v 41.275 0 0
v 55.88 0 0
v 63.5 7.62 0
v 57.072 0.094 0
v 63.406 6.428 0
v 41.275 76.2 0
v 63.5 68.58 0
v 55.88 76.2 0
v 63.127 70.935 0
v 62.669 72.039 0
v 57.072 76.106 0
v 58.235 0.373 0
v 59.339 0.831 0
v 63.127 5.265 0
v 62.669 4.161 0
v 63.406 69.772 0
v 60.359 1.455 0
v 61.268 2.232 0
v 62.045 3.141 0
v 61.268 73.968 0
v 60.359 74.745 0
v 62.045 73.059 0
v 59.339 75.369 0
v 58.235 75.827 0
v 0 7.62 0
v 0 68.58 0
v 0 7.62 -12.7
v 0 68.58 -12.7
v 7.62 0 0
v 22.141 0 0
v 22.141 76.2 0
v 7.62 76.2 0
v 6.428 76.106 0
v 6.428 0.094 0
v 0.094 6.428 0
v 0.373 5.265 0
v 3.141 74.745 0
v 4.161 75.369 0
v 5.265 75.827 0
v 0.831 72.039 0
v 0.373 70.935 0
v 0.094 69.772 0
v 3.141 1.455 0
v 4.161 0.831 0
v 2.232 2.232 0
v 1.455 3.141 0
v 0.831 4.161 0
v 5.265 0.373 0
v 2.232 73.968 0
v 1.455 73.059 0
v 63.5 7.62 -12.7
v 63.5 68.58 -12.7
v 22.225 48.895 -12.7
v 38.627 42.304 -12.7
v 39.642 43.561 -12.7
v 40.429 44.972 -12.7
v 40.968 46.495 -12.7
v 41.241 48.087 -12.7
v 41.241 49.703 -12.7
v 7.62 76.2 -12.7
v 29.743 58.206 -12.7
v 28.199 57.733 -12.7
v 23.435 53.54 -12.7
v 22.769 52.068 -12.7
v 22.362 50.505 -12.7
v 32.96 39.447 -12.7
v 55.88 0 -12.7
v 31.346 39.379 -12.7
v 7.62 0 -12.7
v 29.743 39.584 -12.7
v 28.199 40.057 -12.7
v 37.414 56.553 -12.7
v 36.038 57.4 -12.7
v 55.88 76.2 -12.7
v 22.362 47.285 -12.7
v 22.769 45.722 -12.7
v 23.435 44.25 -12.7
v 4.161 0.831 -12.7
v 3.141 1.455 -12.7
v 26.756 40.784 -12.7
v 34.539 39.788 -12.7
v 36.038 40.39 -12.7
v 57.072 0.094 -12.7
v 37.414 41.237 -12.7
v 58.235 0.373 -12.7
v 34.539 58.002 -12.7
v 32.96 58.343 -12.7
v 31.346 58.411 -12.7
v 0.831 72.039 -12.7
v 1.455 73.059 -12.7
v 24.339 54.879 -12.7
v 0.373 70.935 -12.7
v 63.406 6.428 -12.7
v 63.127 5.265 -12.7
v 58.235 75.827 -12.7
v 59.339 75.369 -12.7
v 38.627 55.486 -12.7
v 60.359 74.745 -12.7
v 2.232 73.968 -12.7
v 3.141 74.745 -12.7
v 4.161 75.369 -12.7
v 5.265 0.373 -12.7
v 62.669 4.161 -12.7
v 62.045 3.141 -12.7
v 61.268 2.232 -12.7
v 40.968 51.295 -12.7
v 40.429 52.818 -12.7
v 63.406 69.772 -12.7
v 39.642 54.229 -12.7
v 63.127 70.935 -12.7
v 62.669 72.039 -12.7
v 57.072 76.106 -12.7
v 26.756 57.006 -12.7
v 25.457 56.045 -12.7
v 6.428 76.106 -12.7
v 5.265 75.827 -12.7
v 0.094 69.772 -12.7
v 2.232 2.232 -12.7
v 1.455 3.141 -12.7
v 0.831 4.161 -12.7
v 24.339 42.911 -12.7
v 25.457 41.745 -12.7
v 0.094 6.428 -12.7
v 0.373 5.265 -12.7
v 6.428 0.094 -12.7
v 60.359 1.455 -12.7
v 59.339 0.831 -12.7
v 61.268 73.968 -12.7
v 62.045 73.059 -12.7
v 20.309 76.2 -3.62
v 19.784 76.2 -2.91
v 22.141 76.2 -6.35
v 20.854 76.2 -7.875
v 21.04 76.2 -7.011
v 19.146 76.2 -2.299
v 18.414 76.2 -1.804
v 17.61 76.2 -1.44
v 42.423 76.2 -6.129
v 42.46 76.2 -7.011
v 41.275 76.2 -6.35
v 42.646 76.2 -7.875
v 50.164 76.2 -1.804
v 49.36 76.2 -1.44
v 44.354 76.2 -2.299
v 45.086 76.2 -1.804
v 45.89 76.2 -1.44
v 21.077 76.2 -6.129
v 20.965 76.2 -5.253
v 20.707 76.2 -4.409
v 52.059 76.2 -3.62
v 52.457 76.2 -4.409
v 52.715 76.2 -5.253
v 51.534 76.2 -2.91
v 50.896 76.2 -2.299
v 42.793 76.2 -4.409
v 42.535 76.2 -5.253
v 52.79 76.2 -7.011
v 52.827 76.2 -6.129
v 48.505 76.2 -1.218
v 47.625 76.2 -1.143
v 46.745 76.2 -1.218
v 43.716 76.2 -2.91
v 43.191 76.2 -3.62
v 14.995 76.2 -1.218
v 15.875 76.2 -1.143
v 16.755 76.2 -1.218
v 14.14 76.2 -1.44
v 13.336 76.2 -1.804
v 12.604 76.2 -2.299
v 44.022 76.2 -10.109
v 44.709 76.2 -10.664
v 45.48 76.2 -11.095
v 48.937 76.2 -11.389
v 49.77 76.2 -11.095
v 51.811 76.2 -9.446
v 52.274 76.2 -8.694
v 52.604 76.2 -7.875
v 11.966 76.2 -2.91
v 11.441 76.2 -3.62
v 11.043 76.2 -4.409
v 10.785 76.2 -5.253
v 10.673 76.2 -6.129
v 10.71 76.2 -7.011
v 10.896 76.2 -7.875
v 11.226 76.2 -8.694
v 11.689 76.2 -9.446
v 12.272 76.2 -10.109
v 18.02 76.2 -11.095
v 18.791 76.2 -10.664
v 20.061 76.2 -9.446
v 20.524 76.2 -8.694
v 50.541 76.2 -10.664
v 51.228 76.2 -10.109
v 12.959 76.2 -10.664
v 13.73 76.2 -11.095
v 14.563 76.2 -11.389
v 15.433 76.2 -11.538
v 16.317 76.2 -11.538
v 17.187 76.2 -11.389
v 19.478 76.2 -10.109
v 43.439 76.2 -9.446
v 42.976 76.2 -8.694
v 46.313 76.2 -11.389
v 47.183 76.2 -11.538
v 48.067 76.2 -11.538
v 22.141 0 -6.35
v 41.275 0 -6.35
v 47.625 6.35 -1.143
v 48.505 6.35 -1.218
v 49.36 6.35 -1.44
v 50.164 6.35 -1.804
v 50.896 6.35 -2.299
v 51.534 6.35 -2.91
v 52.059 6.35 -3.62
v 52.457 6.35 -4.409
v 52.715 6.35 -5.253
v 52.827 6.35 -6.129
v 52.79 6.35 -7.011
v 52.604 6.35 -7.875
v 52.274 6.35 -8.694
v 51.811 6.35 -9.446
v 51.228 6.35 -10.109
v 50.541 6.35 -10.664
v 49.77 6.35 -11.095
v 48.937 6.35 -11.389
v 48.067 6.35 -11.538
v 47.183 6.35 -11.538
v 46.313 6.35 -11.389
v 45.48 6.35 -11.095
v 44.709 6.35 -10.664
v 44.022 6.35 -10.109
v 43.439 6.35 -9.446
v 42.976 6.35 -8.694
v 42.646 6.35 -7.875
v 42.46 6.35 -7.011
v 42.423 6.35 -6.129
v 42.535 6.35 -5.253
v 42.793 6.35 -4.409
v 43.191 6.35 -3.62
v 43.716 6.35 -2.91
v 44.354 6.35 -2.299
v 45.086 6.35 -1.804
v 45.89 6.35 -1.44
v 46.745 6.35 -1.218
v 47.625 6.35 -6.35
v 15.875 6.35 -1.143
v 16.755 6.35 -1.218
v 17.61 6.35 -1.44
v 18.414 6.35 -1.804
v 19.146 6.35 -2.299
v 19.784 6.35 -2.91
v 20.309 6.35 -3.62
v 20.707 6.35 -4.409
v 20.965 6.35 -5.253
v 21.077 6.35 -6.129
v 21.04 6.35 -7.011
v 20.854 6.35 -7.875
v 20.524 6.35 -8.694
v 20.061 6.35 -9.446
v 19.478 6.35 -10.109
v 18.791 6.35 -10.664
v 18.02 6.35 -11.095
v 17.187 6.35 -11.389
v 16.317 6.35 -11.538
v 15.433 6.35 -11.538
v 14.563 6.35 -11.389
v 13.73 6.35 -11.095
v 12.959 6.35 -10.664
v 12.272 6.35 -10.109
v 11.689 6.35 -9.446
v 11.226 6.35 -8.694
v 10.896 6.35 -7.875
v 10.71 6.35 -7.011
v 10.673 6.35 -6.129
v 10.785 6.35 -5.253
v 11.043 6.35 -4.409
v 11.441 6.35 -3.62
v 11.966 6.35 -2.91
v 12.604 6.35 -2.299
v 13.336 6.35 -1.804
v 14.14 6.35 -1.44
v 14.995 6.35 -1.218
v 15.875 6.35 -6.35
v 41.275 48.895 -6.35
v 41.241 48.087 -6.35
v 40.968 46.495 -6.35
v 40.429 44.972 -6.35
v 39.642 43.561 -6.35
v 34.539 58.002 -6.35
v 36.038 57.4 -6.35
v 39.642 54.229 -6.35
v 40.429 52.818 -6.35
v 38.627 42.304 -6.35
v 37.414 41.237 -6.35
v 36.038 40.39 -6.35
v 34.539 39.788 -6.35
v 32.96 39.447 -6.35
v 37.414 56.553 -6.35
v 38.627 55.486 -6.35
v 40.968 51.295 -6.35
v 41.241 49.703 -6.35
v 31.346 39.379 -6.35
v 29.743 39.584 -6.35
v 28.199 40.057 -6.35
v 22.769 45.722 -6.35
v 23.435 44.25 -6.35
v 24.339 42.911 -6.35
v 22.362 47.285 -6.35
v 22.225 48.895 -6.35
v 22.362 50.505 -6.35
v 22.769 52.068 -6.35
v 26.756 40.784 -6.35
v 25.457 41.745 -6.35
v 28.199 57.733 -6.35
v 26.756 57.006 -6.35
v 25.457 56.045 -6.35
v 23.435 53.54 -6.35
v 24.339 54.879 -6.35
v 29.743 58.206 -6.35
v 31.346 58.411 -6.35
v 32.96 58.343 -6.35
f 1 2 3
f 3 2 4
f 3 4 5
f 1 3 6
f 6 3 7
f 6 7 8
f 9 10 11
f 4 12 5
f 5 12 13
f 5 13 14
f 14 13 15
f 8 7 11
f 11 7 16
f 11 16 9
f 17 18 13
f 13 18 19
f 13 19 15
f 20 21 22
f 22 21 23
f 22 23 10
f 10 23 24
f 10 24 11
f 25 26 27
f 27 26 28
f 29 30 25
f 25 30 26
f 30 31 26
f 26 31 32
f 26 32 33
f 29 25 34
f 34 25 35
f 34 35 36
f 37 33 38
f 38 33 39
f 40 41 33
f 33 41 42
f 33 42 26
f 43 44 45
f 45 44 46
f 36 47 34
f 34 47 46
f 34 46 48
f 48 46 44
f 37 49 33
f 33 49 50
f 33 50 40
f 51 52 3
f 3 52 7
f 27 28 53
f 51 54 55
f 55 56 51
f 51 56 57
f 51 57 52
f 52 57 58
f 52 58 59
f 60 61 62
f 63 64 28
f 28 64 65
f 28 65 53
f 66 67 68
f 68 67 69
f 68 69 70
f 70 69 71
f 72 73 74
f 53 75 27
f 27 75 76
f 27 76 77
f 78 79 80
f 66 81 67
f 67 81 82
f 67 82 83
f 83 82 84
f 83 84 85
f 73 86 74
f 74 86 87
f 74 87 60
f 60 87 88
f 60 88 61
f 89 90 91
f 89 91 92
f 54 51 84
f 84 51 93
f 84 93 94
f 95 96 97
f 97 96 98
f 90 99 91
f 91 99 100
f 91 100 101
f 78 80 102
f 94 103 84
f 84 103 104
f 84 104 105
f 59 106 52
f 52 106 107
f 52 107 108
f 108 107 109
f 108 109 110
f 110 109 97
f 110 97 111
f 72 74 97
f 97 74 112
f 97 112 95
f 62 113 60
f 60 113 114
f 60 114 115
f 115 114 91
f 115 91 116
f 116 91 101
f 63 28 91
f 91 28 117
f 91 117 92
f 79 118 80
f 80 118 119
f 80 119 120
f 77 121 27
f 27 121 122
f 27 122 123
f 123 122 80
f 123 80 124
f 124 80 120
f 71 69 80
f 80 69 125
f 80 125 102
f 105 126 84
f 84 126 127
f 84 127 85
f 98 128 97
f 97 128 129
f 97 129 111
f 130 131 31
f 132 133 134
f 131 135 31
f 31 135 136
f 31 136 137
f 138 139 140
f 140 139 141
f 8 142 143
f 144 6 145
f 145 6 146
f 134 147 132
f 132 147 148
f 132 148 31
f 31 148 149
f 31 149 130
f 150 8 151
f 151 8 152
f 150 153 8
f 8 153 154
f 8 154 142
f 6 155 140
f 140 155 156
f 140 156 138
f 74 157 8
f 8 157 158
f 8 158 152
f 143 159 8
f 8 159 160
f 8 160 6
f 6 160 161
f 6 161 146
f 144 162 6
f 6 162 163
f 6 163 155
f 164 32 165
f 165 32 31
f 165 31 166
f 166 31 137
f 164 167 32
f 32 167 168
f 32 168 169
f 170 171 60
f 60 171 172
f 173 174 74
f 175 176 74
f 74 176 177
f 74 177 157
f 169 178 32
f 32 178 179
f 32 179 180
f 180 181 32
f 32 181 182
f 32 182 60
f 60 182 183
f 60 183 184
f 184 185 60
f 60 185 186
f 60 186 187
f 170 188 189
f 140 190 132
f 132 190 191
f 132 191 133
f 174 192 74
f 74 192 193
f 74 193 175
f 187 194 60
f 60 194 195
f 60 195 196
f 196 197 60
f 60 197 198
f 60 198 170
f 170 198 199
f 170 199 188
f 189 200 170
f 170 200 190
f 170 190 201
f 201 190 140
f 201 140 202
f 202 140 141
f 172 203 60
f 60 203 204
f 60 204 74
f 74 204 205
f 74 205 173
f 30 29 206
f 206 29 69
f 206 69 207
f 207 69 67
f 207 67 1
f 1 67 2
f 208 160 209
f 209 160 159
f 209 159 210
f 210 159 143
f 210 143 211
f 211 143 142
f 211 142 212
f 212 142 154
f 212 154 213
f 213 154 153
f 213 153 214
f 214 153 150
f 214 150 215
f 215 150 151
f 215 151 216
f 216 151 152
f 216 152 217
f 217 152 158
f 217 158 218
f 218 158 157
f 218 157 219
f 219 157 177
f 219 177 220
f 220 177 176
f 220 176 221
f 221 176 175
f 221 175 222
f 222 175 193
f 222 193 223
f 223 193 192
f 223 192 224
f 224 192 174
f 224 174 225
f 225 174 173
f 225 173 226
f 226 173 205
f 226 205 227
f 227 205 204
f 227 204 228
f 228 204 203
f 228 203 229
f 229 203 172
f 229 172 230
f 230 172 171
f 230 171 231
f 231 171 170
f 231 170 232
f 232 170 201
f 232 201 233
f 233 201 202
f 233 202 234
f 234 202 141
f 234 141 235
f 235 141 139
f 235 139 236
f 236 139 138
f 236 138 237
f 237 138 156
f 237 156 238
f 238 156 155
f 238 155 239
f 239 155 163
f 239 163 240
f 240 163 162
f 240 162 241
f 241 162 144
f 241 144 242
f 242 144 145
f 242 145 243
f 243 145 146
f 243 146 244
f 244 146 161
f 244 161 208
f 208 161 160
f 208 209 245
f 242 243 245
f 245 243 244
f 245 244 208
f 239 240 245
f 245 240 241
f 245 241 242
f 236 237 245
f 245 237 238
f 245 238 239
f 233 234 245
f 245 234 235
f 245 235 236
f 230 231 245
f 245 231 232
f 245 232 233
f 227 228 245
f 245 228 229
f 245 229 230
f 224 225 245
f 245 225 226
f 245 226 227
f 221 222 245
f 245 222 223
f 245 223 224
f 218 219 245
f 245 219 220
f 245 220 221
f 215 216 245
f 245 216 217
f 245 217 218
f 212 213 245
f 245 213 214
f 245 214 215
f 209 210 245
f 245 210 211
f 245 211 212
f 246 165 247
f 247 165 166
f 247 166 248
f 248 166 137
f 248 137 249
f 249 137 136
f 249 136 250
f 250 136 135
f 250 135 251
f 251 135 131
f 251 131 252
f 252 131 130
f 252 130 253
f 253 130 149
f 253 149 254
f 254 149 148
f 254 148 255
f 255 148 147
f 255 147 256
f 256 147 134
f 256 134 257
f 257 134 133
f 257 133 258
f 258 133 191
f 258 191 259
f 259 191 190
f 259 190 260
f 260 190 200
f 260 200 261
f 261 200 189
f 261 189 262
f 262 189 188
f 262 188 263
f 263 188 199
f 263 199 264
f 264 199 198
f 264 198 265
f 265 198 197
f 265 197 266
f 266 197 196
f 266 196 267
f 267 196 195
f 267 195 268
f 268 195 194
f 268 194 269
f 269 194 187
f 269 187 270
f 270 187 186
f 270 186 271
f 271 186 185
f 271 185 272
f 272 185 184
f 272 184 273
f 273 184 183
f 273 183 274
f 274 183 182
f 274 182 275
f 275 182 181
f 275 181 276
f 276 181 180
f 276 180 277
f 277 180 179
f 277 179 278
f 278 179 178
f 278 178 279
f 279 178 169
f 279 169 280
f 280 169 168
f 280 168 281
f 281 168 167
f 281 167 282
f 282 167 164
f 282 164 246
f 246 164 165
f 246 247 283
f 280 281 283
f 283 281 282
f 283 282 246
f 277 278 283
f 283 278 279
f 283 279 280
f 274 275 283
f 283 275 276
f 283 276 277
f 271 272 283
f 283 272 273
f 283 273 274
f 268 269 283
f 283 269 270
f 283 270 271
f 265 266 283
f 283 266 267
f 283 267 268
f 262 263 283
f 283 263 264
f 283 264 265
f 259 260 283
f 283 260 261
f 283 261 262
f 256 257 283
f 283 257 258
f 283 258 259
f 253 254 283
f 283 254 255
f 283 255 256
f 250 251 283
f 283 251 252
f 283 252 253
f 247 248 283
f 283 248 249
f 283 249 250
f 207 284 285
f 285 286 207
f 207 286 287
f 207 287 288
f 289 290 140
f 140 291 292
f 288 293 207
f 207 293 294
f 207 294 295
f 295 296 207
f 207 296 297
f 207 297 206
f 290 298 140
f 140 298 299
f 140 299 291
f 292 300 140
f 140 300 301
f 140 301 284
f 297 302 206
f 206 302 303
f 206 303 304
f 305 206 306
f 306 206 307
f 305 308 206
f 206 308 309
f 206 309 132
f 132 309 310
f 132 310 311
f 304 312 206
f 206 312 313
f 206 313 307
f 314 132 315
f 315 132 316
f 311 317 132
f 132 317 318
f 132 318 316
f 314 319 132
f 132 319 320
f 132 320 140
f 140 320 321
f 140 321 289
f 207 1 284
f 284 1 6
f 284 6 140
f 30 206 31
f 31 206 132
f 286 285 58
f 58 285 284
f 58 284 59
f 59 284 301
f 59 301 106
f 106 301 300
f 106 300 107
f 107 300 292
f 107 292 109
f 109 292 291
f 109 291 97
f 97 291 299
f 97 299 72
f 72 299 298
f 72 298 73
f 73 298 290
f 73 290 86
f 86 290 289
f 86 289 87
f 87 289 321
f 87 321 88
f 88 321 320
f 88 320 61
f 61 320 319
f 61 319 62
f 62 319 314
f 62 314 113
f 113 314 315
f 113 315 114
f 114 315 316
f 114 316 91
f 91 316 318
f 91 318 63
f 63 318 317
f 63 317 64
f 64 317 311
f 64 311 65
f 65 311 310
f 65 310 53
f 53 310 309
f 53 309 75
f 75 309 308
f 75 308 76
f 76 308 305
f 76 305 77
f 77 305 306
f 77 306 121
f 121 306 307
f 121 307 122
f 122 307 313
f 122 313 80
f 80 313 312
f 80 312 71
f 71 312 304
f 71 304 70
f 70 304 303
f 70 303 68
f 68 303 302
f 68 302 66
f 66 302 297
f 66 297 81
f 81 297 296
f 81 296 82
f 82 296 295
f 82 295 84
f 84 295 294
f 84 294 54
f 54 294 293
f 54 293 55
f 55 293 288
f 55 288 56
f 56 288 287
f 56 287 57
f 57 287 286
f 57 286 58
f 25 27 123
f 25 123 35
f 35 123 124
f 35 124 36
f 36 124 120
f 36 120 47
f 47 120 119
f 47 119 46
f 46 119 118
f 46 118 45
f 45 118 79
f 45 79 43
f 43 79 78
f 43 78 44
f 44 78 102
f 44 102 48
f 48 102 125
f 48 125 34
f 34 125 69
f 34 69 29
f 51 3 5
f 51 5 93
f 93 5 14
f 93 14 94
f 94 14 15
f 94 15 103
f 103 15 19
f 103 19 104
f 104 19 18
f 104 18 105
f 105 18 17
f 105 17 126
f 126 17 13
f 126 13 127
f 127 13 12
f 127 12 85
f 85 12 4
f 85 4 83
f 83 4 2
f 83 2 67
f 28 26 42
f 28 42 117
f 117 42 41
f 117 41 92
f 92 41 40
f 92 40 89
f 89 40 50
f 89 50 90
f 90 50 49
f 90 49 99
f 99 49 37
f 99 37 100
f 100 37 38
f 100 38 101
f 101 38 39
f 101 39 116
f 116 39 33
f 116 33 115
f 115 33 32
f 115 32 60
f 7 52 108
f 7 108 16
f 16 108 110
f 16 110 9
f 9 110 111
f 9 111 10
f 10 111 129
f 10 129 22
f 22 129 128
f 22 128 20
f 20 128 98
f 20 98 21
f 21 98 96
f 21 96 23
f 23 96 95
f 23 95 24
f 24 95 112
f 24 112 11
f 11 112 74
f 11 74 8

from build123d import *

# Parameters (mm, degrees)
SKETCH4_W           = 63.5
SKETCH4_H           = 12.7
BOSS_EXTRUDE1_DEPTH = 76.2
SKETCH5_R           = 5.207
CUT_EXTRUDE1_DEPTH  = 69.85
SKETCH7_W           = 19.133838299
SKETCH7_H           = 6.35
CUT_EXTRUDE2_DEPTH  = 77.2
SKETCH9_R           = 9.525
CUT_EXTRUDE3_DEPTH  = 13.7
FILLET2_R           = 7.62


with BuildPart() as part:
    # Sketch4 → Boss-Extrude1 (new body)
    with BuildSketch(Plane(origin=(0, 0, 0), x_dir=(1, 0, 0), z_dir=(0, 1, 0))):
        with Locations((31.75, 6.35)):
            Rectangle(SKETCH4_W, SKETCH4_H)
    extrude(amount=BOSS_EXTRUDE1_DEPTH)

    # Sketch5 → Cut-Extrude1 (cut)
    with BuildSketch(Plane(origin=(0, 76.2, 0), x_dir=(1, 0, 0), z_dir=(0, 1, 0))):
        with Locations((47.625, 6.35)):
            Circle(SKETCH5_R)
        with Locations((15.875, 6.35)):
            Circle(SKETCH5_R)
    extrude(amount=-CUT_EXTRUDE1_DEPTH, mode=Mode.SUBTRACT)

    # Sketch7 → Cut-Extrude2 (cut, through all)
    with BuildSketch(Plane(origin=(0, 76.2, 0), x_dir=(1, 0, 0), z_dir=(0, 1, 0))):
        with Locations((31.708080851, 3.175)):
            Rectangle(SKETCH7_W, SKETCH7_H)
    extrude(amount=-CUT_EXTRUDE2_DEPTH, mode=Mode.SUBTRACT)

    # Sketch9 → Cut-Extrude3 (cut, through all)
    with BuildSketch(Plane(origin=(0, 0, -12.7), x_dir=(-1, 0, 0), z_dir=(0, 0, -1))):
        with Locations((-31.75, 48.895)):
            Circle(SKETCH9_R)
    extrude(amount=-CUT_EXTRUDE3_DEPTH, mode=Mode.SUBTRACT)

    # Fillet2
    fillet2_edges = [part.edges().sort_by_distance(p)[0] for p in [
        (63.5, 76.2, -6.35),
        (0, 76.2, -6.35),
        (63.5, 0, -6.35),
        (0, 0, -6.35),
    ]]
    fillet(fillet2_edges, radius=FILLET2_R)


solid = part.part
